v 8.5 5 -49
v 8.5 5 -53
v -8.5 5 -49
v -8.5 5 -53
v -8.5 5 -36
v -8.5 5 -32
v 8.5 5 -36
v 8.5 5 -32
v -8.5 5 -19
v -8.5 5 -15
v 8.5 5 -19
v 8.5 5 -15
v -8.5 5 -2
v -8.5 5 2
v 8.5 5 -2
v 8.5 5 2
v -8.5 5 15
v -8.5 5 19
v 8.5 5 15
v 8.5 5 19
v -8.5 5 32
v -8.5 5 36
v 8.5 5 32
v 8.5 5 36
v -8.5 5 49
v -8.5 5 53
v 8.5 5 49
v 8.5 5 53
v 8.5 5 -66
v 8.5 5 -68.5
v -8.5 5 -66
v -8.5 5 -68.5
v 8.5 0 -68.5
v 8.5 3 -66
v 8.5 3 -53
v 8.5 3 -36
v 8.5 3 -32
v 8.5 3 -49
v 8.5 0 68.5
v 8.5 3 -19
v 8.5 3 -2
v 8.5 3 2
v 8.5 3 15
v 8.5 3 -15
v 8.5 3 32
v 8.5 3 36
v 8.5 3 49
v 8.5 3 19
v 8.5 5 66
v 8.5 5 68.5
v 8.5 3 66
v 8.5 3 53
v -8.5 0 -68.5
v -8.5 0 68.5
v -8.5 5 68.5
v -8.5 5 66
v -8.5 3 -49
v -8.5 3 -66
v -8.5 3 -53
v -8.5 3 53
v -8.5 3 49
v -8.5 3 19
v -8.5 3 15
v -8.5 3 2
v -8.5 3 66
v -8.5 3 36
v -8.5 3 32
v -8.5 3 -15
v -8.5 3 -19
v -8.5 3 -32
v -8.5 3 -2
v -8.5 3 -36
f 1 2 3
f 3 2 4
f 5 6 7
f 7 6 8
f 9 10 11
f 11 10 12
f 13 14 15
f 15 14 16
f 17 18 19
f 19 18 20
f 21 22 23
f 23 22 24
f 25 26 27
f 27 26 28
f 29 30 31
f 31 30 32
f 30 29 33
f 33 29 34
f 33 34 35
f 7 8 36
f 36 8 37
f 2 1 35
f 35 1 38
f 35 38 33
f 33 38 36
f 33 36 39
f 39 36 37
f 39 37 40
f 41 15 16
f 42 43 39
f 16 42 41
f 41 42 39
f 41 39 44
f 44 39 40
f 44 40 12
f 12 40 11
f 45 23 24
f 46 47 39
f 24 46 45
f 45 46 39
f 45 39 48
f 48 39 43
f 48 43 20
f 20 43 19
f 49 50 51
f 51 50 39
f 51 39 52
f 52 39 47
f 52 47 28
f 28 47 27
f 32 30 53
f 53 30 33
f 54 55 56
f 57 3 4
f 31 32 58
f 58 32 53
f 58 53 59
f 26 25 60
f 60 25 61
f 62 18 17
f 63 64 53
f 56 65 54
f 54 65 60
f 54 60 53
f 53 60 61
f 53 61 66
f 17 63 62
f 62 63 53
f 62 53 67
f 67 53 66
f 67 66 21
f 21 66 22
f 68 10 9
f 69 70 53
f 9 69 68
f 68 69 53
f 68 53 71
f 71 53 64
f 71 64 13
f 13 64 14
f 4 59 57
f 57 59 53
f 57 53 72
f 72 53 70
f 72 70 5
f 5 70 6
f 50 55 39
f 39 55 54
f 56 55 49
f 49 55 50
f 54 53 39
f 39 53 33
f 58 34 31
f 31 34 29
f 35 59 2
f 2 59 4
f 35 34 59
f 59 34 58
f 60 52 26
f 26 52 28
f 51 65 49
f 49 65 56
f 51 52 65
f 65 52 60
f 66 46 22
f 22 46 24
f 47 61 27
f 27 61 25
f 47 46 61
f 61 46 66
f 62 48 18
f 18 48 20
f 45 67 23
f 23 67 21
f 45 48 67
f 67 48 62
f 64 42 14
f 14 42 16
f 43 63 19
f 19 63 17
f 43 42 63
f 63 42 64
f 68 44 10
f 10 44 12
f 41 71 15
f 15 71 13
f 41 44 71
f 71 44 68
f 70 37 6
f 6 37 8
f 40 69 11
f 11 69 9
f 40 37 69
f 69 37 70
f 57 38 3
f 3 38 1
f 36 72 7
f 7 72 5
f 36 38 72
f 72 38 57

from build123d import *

# Parameters (mm, degrees)
SKETCH1_W           = 17
SKETCH1_H           = 137
BOSS_EXTRUDE1_DEPTH = 5
SKETCH2_W           = 17
SKETCH2_H           = 13
CUT_EXTRUDE1_DEPTH  = 2
LPATTERN1_COUNT     = 8
LPATTERN1_PITCH     = 17


with BuildPart() as part:
    # Sketch1 → Boss-Extrude1 (new body)
    with BuildSketch(Plane(origin=(0, 0, 0), x_dir=(1, 0, 0), z_dir=(0, 1, 0))):
        Rectangle(SKETCH1_W, SKETCH1_H)
    extrude(amount=BOSS_EXTRUDE1_DEPTH)

    # Sketch2 → Cut-Extrude1 (cut)
    with BuildSketch(Plane(origin=(0, 5, 0), x_dir=(1, 0, 0), z_dir=(0, 1, 0))):
        with Locations((0, 59.5)):
            Rectangle(SKETCH2_W, SKETCH2_H)
    cut_extrude1 = extrude(amount=-CUT_EXTRUDE1_DEPTH, mode=Mode.SUBTRACT)

    # LPattern1: Cut-Extrude1 ×8
    with Locations(*[(0, 0, i * LPATTERN1_PITCH) for i in range(1, LPATTERN1_COUNT)]):
        add(cut_extrude1, mode=Mode.SUBTRACT)


solid = part.part
